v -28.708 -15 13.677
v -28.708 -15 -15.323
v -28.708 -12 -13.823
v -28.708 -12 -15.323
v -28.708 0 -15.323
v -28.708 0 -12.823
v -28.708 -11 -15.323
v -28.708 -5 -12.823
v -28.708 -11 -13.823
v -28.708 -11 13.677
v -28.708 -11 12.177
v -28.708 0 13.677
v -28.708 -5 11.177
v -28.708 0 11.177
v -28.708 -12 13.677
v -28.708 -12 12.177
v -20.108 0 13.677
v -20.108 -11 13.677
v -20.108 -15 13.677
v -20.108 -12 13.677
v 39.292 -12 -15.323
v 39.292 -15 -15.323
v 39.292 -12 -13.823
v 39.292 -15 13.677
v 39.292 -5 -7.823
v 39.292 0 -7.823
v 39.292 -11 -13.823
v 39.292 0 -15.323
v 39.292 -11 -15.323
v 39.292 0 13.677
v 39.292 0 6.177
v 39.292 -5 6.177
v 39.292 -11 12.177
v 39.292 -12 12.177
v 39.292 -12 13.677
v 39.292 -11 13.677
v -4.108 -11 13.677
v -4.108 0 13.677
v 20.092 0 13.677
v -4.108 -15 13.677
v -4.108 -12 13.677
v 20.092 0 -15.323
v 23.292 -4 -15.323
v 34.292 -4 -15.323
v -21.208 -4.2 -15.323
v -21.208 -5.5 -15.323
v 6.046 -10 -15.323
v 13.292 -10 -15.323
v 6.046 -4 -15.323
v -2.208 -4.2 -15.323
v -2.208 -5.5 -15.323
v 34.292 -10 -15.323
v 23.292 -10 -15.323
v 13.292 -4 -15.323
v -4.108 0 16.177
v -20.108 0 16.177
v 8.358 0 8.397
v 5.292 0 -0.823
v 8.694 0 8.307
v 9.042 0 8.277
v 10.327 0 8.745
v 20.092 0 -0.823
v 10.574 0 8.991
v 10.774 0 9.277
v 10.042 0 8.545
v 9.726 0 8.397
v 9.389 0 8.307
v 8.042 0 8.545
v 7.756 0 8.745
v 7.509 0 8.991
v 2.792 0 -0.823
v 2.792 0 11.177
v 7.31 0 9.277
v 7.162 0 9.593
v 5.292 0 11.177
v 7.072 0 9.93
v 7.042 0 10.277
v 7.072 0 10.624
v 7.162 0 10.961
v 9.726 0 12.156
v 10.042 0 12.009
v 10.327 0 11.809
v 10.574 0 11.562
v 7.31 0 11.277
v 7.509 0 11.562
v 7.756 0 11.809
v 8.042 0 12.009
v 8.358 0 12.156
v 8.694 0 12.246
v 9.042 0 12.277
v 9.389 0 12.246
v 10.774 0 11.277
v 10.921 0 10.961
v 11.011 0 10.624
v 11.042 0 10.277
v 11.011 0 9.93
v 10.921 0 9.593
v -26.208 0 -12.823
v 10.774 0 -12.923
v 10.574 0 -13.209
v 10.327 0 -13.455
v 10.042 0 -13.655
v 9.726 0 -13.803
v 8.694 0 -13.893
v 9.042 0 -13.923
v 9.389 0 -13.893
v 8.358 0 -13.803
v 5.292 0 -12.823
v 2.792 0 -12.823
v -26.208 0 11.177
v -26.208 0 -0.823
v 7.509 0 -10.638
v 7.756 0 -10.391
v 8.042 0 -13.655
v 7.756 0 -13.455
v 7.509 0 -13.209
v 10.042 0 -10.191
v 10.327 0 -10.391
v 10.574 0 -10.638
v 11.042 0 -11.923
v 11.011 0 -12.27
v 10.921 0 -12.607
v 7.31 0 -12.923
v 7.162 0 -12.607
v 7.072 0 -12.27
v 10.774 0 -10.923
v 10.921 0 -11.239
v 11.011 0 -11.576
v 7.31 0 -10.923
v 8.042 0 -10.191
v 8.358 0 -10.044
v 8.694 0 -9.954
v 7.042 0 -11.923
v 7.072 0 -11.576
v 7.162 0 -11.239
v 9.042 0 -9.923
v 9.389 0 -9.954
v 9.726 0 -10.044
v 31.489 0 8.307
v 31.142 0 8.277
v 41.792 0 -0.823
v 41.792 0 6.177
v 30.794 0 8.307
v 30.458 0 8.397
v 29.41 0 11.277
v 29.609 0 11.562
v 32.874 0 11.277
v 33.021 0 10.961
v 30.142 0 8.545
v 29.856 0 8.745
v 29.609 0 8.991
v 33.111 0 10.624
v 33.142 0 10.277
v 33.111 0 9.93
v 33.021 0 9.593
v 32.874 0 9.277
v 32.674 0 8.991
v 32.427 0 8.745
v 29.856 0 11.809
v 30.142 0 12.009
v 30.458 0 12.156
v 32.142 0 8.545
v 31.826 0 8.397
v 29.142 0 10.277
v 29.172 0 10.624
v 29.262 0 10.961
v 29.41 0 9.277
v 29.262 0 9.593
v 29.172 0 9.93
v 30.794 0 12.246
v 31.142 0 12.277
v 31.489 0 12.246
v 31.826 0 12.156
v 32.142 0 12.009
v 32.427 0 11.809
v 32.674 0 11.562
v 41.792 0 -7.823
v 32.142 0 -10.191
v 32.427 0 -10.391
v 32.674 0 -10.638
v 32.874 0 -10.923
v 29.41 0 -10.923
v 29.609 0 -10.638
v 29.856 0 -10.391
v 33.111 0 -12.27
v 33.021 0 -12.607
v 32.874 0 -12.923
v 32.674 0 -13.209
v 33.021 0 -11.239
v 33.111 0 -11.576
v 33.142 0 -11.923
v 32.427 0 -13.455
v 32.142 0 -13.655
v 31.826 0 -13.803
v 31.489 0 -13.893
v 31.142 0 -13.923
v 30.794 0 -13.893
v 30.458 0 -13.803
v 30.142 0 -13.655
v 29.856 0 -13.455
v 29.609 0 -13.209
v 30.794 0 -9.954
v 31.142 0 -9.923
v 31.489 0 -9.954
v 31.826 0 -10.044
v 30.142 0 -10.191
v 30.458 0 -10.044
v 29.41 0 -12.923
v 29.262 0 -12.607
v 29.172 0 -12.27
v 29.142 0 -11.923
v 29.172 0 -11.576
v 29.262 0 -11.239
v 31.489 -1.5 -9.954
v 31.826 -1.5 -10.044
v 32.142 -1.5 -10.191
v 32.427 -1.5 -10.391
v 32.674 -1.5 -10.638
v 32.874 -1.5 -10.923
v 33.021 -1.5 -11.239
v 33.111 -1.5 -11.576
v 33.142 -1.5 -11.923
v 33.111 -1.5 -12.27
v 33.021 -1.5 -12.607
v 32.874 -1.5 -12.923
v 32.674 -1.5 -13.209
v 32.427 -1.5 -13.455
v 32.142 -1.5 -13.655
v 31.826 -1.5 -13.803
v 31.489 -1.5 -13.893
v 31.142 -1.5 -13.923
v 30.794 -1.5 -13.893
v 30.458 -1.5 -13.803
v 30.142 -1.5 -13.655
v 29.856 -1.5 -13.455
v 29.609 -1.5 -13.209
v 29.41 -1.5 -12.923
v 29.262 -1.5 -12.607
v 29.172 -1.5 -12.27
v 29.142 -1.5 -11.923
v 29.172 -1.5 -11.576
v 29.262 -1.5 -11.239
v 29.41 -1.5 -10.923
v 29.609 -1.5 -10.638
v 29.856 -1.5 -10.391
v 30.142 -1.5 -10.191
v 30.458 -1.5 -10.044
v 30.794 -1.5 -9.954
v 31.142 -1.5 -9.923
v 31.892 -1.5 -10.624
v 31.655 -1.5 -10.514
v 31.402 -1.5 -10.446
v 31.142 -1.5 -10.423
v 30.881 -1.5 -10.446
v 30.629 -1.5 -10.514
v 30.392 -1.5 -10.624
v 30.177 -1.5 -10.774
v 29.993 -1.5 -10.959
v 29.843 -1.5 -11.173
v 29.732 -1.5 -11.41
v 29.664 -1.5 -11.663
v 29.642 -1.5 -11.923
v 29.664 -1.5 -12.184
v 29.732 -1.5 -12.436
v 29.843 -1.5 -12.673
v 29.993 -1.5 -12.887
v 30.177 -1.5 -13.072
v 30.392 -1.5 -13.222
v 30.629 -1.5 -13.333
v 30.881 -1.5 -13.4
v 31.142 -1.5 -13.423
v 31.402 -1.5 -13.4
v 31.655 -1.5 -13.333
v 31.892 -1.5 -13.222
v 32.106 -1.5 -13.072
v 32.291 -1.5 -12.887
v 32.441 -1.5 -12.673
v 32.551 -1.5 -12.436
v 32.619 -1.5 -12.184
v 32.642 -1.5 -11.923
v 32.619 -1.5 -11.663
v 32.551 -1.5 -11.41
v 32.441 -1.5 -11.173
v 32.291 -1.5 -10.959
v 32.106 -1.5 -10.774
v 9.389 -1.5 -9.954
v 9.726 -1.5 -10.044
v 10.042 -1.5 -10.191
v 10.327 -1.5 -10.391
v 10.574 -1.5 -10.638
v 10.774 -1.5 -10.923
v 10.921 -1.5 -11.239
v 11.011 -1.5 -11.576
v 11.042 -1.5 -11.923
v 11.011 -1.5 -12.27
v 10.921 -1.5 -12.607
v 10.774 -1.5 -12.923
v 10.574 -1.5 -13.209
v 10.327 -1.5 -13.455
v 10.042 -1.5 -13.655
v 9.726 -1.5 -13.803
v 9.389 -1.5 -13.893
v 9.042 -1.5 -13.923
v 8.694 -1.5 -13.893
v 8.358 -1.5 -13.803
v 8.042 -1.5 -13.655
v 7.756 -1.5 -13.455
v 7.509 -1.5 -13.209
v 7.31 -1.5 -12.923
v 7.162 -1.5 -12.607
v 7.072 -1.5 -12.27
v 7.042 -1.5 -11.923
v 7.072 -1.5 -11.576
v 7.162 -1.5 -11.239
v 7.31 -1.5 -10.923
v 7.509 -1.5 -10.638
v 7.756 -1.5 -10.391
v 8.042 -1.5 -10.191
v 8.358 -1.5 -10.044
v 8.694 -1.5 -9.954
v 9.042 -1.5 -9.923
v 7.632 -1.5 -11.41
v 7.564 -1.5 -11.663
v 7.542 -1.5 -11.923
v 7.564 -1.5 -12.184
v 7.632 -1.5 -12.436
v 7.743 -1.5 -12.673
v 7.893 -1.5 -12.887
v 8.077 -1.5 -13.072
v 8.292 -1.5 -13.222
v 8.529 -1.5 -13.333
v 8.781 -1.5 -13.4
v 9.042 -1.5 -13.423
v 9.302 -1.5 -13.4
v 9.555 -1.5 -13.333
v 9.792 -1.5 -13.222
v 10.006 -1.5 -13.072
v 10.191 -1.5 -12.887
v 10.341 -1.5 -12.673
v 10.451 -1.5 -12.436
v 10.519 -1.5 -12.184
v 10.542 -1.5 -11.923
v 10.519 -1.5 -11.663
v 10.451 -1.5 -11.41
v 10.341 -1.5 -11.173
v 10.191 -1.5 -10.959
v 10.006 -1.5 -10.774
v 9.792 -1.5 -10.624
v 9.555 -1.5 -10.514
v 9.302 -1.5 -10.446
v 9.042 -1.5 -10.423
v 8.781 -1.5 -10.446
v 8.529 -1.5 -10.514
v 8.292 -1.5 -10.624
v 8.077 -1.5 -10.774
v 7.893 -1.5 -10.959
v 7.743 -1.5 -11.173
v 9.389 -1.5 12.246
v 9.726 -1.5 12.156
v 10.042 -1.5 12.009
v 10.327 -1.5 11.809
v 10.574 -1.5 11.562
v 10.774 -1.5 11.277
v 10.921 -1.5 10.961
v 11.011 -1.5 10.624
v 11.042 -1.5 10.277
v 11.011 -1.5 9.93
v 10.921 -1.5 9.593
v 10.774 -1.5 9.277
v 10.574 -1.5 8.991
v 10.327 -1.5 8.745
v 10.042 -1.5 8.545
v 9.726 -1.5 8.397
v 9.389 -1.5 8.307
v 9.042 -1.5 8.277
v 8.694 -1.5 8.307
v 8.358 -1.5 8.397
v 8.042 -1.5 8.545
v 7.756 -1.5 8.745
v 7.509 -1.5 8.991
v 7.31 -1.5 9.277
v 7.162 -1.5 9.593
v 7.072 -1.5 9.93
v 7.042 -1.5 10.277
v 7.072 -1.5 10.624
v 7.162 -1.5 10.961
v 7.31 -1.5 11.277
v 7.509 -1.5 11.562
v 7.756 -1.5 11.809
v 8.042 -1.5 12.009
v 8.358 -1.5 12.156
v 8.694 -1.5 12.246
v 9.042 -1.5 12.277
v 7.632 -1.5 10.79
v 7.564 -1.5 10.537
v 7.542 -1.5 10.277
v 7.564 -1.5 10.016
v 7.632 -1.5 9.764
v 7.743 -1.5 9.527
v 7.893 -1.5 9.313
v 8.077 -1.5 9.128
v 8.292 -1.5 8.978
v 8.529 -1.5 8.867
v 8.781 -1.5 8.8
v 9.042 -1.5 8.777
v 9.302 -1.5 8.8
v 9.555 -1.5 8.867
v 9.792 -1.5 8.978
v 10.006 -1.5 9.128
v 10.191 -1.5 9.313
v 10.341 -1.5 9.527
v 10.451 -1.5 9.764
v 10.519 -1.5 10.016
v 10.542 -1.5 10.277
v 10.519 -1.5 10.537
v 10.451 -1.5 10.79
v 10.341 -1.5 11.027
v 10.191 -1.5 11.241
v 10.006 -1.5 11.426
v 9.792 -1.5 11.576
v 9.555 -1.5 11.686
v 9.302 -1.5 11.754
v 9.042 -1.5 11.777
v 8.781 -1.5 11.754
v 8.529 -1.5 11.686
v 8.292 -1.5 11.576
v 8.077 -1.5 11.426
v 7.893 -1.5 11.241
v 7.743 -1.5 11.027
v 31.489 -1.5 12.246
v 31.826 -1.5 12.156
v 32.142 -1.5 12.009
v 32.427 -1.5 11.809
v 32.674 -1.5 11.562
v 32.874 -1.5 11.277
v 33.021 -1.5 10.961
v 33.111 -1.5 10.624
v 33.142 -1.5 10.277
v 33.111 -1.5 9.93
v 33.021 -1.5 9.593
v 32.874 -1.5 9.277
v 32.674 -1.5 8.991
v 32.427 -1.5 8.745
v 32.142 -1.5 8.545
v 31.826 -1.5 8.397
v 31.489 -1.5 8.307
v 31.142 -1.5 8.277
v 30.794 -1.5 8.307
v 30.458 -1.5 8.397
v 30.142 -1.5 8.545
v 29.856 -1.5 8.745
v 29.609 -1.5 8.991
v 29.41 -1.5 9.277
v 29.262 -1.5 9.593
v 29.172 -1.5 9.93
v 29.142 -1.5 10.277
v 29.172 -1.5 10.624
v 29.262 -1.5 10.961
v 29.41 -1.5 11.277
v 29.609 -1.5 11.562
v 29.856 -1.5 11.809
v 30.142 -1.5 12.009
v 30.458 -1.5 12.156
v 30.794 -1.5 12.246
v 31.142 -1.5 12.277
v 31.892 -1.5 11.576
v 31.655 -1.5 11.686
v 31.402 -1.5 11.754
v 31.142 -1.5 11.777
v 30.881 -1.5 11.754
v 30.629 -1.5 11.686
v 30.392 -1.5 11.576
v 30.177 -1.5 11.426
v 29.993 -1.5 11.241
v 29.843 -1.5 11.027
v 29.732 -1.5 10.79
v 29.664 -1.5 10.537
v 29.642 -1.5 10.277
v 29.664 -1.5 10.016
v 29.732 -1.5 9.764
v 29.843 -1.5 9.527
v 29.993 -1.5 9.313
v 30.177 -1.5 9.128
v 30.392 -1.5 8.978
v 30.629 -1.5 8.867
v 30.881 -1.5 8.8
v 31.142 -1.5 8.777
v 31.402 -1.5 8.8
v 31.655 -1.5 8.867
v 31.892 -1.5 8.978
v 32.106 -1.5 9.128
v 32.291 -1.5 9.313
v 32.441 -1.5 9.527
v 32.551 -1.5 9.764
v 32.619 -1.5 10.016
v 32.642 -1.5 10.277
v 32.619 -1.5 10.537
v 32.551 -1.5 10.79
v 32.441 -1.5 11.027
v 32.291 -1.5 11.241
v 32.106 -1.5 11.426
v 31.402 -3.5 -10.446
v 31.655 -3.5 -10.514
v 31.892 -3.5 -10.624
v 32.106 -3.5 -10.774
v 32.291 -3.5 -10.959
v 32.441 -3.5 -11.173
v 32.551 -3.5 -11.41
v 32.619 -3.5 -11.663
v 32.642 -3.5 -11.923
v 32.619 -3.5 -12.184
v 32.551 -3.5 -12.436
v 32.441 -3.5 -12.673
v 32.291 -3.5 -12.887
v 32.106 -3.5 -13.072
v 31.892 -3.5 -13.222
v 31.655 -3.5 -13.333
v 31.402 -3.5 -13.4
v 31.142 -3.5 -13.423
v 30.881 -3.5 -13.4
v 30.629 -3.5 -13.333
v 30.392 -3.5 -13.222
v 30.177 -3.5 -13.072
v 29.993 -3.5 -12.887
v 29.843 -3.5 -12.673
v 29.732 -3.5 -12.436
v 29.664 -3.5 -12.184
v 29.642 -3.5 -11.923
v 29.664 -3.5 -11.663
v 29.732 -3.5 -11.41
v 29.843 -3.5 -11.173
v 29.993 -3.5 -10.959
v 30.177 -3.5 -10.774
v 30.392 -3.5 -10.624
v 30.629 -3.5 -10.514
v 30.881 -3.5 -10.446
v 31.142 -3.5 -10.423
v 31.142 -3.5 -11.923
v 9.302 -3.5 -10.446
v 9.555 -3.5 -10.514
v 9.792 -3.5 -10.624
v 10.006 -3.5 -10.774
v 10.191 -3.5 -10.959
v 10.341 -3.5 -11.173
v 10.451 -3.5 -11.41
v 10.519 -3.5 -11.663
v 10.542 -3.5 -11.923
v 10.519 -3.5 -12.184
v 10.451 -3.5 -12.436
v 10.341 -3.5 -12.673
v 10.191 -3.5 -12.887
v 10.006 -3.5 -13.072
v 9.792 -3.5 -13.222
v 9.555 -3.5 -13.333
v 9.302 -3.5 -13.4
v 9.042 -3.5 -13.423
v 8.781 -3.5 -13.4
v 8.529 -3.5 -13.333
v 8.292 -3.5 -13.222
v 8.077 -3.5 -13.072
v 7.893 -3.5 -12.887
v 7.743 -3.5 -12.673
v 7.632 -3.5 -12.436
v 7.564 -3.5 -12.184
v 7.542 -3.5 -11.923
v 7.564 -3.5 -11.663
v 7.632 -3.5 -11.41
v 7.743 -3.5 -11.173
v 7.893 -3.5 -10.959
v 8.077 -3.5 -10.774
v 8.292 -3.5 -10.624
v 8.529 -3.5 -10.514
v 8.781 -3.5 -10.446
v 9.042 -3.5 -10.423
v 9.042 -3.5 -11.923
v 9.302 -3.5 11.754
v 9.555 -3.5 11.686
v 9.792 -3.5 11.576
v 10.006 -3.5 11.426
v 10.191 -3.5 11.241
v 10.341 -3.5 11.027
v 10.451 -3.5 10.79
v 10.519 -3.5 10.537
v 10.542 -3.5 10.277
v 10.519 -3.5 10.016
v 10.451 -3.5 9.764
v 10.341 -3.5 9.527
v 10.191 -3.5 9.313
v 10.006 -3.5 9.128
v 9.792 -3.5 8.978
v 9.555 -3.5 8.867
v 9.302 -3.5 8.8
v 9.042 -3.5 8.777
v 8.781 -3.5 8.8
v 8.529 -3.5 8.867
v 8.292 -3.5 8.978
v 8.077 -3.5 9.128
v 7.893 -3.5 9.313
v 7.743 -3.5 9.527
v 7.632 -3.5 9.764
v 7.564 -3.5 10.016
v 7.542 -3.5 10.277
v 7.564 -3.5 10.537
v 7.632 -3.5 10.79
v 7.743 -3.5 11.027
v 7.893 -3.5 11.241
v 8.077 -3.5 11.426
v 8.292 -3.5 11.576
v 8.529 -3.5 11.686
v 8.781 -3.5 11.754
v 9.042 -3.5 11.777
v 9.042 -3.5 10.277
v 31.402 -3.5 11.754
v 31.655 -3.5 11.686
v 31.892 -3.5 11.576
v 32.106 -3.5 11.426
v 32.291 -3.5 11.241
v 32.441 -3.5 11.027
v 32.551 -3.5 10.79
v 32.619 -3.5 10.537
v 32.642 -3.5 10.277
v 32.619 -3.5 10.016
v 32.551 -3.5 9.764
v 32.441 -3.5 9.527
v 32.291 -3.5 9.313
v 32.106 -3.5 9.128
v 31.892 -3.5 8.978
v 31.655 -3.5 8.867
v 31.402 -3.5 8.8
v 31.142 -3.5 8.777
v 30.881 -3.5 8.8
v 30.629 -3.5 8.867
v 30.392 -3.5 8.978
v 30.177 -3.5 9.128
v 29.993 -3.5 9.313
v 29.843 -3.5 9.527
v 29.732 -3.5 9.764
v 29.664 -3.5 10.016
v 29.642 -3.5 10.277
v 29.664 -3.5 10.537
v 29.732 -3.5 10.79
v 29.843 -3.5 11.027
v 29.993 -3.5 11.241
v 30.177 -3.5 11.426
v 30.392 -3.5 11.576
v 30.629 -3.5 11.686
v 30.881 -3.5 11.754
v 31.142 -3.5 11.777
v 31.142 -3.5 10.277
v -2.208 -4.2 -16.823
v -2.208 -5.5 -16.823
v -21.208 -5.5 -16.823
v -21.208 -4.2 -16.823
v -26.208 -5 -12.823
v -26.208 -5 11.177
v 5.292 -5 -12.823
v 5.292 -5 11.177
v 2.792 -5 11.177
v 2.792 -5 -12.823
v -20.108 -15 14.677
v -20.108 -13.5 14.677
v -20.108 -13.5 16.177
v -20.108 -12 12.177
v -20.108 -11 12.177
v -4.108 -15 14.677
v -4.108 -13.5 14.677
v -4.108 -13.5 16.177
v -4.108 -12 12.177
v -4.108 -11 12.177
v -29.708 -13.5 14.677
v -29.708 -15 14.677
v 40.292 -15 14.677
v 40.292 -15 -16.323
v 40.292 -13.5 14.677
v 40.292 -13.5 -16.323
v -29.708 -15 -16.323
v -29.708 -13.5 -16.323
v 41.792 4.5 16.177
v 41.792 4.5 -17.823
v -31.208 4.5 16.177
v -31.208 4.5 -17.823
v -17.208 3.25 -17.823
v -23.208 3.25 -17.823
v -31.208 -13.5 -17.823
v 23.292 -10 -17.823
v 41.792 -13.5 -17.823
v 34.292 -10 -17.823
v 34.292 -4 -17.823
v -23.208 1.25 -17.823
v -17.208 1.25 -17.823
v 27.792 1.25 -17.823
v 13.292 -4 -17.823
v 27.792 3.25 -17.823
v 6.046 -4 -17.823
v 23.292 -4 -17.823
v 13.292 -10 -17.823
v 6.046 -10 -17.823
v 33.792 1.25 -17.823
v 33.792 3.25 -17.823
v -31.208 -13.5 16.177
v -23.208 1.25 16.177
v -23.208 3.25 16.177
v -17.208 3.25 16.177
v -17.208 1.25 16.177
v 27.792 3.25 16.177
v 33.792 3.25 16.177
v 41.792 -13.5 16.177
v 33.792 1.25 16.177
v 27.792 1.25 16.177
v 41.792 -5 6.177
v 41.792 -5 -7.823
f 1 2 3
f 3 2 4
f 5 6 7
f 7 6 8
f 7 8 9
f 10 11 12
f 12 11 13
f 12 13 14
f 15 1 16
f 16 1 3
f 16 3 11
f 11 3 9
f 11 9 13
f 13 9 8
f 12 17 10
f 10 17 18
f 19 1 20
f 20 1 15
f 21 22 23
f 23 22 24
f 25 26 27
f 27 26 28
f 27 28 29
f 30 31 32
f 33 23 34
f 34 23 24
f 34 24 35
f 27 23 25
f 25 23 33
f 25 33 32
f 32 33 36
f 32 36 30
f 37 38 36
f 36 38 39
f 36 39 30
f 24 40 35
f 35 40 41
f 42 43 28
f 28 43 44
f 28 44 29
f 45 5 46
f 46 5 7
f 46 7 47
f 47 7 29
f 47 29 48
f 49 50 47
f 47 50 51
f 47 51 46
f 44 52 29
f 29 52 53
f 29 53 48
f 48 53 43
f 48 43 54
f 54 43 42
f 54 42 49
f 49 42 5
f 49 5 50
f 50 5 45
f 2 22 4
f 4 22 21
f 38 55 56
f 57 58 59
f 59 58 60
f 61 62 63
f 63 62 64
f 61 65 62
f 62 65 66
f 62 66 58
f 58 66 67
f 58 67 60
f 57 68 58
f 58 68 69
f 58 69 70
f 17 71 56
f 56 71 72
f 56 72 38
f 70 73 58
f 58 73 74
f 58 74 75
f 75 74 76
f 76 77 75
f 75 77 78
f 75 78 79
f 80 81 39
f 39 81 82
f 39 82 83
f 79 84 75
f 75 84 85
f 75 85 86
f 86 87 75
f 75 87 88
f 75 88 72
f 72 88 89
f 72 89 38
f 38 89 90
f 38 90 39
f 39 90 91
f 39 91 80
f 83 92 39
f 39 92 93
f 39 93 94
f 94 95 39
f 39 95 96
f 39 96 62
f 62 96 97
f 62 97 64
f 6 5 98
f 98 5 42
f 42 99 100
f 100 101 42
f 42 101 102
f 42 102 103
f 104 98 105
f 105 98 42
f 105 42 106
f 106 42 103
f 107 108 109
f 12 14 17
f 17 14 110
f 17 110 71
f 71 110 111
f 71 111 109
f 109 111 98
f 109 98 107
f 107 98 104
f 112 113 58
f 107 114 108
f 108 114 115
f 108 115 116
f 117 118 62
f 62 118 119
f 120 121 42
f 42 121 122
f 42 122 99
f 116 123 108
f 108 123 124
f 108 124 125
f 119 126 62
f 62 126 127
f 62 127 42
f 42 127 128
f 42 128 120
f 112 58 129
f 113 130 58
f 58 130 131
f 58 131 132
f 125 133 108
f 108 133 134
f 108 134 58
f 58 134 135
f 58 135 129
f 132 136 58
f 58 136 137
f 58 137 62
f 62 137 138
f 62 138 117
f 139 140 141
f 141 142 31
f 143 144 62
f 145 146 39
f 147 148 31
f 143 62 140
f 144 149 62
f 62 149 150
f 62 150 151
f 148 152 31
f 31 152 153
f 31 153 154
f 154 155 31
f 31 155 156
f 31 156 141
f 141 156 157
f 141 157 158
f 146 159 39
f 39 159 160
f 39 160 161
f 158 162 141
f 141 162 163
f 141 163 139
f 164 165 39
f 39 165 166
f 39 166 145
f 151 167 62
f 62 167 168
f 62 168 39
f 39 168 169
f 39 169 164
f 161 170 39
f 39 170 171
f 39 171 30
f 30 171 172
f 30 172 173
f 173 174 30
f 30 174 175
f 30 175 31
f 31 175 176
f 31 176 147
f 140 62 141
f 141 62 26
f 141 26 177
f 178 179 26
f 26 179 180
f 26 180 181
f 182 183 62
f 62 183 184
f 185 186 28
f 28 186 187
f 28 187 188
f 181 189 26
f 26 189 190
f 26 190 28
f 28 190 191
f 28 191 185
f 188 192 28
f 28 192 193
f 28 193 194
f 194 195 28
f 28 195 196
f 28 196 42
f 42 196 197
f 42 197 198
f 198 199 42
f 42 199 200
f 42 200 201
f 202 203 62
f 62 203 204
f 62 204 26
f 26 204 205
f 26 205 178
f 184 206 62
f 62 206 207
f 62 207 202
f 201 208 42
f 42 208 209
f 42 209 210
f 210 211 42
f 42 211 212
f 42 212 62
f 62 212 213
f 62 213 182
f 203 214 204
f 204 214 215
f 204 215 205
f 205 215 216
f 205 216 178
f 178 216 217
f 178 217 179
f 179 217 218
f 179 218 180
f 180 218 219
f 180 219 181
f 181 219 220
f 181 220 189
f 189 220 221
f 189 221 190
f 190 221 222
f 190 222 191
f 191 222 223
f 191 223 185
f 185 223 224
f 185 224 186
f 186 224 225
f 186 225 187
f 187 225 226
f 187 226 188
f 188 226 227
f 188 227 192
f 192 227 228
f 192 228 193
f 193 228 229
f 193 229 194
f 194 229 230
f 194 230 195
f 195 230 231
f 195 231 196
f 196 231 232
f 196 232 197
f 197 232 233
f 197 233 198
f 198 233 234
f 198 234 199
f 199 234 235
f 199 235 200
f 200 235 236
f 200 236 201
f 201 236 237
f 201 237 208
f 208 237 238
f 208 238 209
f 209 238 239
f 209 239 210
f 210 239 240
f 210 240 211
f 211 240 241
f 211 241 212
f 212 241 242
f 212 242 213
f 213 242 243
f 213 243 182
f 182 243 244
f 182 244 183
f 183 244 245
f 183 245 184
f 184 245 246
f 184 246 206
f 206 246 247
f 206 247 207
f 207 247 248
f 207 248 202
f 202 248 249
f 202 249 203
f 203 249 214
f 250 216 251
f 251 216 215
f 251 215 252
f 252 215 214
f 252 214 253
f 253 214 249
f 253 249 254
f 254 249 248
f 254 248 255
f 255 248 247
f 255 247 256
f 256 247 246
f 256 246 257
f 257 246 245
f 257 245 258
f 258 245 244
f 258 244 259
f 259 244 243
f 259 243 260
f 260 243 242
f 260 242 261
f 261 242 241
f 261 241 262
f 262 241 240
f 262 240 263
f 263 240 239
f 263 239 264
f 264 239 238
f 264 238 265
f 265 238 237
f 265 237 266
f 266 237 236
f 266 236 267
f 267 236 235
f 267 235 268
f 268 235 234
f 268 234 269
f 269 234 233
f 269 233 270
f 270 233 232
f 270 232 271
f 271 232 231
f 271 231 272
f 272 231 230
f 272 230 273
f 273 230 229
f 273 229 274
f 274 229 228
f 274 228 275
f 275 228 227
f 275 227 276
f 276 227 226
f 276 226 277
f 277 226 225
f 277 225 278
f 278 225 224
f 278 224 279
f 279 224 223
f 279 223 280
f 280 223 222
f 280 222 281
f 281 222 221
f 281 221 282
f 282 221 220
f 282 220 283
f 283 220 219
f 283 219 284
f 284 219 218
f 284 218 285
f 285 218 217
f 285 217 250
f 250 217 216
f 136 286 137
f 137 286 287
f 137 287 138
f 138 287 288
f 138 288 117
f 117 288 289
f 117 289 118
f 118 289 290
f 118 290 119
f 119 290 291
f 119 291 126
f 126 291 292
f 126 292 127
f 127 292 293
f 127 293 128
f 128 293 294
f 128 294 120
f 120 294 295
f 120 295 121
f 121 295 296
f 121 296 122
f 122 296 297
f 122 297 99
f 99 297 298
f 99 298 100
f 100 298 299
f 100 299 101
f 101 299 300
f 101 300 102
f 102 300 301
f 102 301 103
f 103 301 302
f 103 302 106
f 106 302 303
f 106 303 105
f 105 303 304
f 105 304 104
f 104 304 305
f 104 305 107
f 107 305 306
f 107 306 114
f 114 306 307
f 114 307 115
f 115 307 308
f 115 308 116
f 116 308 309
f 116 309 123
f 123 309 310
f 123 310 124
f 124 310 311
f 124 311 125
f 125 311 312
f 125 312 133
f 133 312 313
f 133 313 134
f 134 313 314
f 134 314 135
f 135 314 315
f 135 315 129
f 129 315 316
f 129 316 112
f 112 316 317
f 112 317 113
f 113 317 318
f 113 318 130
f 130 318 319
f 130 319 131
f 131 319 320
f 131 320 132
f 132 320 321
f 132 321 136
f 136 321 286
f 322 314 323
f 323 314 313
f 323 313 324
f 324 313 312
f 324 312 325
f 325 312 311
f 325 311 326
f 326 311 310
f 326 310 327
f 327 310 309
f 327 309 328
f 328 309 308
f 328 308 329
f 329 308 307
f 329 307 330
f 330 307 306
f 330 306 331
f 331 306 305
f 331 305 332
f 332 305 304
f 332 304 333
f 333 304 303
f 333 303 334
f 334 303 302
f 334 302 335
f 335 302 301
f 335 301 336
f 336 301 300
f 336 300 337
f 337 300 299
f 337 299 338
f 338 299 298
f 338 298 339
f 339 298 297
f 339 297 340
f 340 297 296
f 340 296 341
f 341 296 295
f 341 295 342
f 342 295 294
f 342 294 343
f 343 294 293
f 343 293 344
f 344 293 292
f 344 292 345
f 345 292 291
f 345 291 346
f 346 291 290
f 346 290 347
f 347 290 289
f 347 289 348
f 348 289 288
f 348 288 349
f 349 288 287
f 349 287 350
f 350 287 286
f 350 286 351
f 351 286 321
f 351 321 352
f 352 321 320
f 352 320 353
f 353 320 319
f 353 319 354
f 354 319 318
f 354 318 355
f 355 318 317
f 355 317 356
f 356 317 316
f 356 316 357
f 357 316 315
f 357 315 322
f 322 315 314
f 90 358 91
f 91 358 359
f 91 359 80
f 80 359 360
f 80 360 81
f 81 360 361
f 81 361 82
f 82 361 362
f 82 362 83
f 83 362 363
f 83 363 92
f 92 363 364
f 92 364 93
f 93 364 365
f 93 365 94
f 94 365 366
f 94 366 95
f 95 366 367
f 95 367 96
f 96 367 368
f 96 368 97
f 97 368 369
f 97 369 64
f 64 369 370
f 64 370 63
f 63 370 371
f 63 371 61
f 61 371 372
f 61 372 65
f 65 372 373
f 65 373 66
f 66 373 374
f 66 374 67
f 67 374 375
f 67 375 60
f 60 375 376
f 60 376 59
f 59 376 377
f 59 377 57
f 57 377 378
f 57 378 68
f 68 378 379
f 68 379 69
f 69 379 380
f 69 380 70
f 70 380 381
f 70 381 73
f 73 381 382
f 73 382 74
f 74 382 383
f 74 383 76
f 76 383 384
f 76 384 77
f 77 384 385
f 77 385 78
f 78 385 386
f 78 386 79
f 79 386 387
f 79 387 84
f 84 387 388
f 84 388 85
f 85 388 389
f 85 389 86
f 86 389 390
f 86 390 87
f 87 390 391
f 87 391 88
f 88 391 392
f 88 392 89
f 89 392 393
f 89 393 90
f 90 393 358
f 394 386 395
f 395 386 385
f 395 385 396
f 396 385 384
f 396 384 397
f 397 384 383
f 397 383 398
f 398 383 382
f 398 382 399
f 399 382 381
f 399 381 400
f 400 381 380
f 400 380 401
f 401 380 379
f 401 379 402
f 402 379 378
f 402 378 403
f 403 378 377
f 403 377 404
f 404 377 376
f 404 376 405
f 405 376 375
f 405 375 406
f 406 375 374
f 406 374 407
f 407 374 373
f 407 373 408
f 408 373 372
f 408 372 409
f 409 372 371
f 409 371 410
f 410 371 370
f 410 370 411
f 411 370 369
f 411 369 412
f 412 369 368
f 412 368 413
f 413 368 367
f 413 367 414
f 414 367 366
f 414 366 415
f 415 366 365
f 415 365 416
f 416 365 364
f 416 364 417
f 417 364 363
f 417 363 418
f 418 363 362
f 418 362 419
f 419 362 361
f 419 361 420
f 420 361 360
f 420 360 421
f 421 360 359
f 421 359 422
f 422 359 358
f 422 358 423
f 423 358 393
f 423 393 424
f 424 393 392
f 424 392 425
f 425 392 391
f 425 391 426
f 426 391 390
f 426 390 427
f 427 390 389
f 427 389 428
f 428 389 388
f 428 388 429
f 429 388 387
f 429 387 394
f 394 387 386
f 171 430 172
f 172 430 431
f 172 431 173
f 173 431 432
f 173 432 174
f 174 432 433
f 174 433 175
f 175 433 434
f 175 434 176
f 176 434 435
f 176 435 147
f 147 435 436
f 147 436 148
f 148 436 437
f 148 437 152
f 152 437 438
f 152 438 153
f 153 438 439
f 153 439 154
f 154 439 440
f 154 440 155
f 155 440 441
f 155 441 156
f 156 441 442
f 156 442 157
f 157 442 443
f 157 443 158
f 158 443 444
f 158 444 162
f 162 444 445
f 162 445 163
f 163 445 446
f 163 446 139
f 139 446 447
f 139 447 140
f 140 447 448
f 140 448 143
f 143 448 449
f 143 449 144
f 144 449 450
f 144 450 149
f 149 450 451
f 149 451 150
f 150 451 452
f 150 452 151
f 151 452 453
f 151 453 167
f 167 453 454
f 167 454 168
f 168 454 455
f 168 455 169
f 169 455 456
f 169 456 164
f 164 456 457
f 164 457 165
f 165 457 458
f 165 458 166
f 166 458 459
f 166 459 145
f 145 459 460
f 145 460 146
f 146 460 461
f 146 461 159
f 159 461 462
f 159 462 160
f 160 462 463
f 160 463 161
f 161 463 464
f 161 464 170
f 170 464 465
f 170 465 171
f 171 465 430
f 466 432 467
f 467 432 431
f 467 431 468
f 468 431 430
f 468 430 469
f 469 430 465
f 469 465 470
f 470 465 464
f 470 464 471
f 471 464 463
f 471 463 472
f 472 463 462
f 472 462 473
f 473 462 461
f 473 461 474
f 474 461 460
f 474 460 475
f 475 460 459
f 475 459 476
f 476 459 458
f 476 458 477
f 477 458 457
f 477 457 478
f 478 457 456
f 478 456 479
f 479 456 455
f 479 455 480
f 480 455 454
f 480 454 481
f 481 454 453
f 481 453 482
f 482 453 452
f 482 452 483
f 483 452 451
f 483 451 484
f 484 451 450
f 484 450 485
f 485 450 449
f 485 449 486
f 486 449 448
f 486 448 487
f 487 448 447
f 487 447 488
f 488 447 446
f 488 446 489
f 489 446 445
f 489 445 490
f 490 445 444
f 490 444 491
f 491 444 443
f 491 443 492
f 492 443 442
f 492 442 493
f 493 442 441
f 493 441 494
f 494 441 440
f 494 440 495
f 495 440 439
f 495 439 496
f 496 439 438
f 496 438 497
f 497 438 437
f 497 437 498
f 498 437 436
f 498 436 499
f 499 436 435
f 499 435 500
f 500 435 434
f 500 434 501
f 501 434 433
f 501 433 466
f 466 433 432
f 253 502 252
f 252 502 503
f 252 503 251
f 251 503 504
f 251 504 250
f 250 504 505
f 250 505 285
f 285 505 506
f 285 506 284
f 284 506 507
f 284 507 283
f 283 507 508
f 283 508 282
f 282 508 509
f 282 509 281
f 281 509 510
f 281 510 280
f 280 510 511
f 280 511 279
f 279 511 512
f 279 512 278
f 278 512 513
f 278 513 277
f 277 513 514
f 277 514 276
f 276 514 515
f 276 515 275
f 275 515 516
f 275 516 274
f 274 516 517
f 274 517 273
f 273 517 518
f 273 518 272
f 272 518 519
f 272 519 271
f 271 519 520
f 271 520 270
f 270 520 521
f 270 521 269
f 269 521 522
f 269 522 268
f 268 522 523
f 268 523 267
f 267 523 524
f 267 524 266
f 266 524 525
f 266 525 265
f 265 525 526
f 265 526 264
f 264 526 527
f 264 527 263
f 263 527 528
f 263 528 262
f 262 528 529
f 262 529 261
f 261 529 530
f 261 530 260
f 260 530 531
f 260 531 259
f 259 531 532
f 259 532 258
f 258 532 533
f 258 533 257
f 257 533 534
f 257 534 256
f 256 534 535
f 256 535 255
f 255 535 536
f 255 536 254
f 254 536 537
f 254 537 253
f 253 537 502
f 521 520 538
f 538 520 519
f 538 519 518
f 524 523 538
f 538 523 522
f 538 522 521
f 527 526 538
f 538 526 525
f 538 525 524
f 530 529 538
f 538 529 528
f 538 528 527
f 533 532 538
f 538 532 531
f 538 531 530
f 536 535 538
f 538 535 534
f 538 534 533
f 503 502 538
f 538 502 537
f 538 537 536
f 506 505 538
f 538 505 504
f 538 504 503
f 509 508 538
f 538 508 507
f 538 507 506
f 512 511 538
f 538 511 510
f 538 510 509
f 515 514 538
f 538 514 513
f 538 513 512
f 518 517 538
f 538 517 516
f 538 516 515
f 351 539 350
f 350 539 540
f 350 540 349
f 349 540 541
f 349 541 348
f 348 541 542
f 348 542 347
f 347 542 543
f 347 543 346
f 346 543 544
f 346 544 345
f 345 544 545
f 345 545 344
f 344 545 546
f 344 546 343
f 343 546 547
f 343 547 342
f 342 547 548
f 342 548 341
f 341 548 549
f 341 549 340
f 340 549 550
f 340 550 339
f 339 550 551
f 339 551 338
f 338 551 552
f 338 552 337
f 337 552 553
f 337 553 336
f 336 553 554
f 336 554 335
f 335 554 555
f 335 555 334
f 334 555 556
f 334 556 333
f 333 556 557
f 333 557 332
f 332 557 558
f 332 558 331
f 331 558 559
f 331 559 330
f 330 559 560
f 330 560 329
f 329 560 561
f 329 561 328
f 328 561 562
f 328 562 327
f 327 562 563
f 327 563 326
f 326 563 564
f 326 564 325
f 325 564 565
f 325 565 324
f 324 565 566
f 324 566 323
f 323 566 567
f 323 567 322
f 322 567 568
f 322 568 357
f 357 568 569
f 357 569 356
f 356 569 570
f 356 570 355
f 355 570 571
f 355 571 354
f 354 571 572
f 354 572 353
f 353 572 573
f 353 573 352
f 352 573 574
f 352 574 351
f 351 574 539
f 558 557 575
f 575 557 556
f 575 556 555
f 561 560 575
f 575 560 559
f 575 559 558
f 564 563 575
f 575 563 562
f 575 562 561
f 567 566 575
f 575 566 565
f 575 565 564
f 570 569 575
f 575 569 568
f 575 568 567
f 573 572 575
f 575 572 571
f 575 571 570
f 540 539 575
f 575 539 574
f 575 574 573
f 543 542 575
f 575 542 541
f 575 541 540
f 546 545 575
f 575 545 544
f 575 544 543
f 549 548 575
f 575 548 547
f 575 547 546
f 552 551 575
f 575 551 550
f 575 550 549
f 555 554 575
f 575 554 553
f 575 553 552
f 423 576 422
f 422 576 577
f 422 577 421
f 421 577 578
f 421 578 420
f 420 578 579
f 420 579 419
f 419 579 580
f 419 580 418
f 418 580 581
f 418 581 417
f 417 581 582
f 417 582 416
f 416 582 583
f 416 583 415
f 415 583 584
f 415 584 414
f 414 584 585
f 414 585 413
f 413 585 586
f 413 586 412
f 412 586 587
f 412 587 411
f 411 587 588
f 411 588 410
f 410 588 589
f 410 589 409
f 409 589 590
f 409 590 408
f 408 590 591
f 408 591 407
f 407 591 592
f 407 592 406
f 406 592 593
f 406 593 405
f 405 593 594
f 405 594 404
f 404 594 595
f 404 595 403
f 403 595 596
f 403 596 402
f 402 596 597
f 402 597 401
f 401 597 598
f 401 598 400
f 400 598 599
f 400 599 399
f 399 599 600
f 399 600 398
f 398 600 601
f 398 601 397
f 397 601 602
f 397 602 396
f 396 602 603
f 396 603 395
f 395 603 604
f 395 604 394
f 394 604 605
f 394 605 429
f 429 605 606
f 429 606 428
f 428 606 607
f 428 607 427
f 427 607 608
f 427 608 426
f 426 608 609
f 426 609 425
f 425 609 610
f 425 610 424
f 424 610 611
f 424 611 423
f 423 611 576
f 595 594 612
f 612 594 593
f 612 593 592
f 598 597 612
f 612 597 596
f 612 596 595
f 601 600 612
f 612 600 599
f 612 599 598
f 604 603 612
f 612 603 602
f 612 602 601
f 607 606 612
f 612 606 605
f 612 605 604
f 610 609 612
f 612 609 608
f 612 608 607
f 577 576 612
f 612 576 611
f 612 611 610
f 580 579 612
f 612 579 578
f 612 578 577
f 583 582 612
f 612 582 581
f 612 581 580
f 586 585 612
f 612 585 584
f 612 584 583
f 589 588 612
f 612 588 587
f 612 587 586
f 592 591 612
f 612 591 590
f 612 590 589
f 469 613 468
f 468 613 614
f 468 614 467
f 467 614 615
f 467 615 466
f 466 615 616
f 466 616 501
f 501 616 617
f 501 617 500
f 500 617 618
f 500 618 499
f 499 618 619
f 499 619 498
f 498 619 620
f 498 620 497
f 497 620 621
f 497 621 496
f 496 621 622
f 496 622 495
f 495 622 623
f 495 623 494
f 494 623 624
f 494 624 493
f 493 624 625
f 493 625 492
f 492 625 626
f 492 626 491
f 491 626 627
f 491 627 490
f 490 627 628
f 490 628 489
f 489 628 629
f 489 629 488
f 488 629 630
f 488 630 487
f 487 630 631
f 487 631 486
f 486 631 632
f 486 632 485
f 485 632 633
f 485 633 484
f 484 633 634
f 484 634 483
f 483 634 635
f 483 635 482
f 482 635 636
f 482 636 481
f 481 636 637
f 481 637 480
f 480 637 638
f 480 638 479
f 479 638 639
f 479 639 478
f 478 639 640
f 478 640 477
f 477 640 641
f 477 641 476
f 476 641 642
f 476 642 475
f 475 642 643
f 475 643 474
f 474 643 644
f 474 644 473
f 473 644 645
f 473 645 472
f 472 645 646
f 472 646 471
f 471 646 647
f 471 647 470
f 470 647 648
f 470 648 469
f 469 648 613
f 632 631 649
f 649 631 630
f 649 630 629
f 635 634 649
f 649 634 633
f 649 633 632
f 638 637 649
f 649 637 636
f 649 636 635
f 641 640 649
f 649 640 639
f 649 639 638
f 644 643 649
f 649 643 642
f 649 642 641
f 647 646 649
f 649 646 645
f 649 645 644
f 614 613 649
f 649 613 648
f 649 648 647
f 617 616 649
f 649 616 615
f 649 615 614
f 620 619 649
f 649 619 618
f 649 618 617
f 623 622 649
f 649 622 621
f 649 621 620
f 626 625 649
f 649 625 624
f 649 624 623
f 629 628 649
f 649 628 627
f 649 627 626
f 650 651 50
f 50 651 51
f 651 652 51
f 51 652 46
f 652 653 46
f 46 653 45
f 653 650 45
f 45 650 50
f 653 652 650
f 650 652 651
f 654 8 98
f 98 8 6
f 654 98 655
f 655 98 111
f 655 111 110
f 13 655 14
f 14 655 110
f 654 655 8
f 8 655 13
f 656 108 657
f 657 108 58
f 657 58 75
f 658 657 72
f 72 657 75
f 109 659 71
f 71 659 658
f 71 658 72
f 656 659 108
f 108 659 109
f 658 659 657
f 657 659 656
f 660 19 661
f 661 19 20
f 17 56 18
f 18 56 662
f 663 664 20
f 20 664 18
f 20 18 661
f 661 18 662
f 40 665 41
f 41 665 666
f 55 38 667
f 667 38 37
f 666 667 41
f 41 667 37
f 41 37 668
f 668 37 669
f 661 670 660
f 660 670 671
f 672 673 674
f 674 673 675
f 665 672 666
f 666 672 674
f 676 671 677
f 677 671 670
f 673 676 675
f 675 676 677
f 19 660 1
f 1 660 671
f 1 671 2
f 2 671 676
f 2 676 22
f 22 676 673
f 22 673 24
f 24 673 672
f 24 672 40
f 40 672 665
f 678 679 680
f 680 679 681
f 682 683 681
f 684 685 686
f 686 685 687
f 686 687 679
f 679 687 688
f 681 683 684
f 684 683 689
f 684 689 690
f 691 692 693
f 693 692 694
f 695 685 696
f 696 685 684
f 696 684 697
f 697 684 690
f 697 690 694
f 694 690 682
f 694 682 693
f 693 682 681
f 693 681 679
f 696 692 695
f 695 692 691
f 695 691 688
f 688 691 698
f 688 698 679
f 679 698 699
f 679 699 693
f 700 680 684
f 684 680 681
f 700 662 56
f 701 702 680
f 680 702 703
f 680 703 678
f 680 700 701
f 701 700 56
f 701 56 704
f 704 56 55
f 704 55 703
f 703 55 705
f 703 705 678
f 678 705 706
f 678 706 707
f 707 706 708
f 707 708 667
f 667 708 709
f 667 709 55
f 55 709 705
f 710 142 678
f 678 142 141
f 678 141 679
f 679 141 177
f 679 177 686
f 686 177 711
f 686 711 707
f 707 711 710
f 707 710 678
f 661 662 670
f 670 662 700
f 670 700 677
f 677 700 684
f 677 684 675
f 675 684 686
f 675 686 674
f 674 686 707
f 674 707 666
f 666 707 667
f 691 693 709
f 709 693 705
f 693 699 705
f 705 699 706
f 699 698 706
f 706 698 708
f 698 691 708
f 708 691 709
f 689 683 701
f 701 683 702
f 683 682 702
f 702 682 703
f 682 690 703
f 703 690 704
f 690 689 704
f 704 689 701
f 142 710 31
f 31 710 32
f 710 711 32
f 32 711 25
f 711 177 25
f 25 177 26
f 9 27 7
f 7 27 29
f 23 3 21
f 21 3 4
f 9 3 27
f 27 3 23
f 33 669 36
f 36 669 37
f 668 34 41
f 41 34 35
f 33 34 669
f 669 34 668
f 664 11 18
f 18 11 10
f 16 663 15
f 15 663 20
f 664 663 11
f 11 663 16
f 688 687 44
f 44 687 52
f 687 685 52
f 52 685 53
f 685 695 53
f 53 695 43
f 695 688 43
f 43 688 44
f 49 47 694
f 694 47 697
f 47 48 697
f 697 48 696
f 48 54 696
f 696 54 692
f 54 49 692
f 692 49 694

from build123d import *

# Parameters (mm, degrees)
SKETCH1_W             = 73
SKETCH1_H             = 34
BASE_DEPTH            = 4.5
SKETCH21_W            = 73
SKETCH21_H            = 34
EXTRUDE_UP_DEPTH      = 13.5
SKETCH22_W            = 68
SKETCH22_H            = 29
CUT_DOWN_DEPTH        = 13.5
SKETCH27_R            = 2
BOSS_EXTRUDE15_DEPTH  = 1.5
SKETCH29_R            = 2
BOSS_EXTRUDE16_DEPTH  = 1.5
SKETCH30_R            = 2
BOSS_EXTRUDE17_DEPTH  = 1.5
SKETCH28_R            = 2
BOSS_EXTRUDE18_DEPTH  = 1.5
SKETCH31_R            = 1.5
BOSS_EXTRUDE19_DEPTH  = 2
SKETCH32_R            = 1.5
BOSS_EXTRUDE20_DEPTH  = 2
SKETCH33_R            = 1.5
BOSS_EXTRUDE21_DEPTH  = 2
SKETCH34_R            = 1.5
BOSS_EXTRUDE22_DEPTH  = 2
SKETCH39_W            = 19
SKETCH39_H            = 1.3
WALL_SLIT_DEPTH       = 1.5
SKETCH41_W            = 2.5
SKETCH41_H            = 24
OUTSIDE_BLOCK_DEPTH   = 5
SKETCH44_W            = 2.5
SKETCH44_H            = 24
INSIDE_BLOCK_DEPTH    = 5
SKETCH62_W            = 70
SKETCH62_H            = 31
RAISE_LIP_DEPTH       = 1.5
SKETCH74_W            = 16
SKETCH74_H            = 15
USB_HOLE_DEPTH        = 2.5
SKETCH63_W            = 68
SKETCH63_H            = 29
CUT_LIP_DEPTH         = 1.5
SKETCH47_W            = 6
SKETCH47_H            = 2
TOP_TIE_HOLE_DEPTH    = 34
SKETCH48_W            = 6
SKETCH48_H            = 2
BOTTOM_TIE_HOLE_DEPTH = 34
SKETCH56_W            = 14
SKETCH56_H            = 5
WIRE_HOLE_DEPTH       = 2.5
SKETCH68_W            = 68
SKETCH68_H            = 1
RIGHT_LEDGE_DEPTH     = 1.5
SKETCH67_W            = 43.4
SKETCH67_H            = 1
SKETCH67_W_2          = 8.6
LEFT_LEDGE_DEPTH      = 1.5
SKETCH69_W            = 11
SKETCH69_H            = 6
SWITCH_HOLE_DEPTH     = 2.5
SKETCH70_W            = 7.245173121
SKETCH70_H            = 6
POWER_HOLE_DEPTH      = 2.5


with BuildPart() as part:
    # Sketch1 → base (new body)
    with BuildSketch(Plane(origin=(0, 0, 0), x_dir=(1, 0, 0), z_dir=(0, 1, 0))):
        with Locations((5.291578947, 0.823157895)):
            Rectangle(SKETCH1_W, SKETCH1_H)
    extrude(amount=BASE_DEPTH)

    # Sketch21 → extrude up (add)
    with BuildSketch(Plane(origin=(0, 0, 0), x_dir=(-1, 0, 0), z_dir=(0, -1, 0))):
        with Locations((-5.291578947, 0.823157895)):
            Rectangle(SKETCH21_W, SKETCH21_H)
    extrude(amount=EXTRUDE_UP_DEPTH)

    # Sketch22 → cut down (cut)
    with BuildSketch(Plane(origin=(0, -13.5, 0), x_dir=(-1, 0, 0), z_dir=(0, -1, 0))):
        with Locations((-5.291578947, 0.823157895)):
            Rectangle(SKETCH22_W, SKETCH22_H)
    extrude(amount=-CUT_DOWN_DEPTH, mode=Mode.SUBTRACT)

    # Sketch27 → Boss-Extrude15 (add)
    with BuildSketch(Plane.XZ):
        with Locations(Location((31.141578947, -11.923157895, 0), (0, 0, 270))):
            Circle(SKETCH27_R)
    extrude(amount=BOSS_EXTRUDE15_DEPTH)

    # Sketch29 → Boss-Extrude16 (add)
    with BuildSketch(Plane.XZ):
        with Locations(Location((9.041578947, -11.923157895, 0), (0, 0, 270))):
            Circle(SKETCH29_R)
    extrude(amount=BOSS_EXTRUDE16_DEPTH)

    # Sketch30 → Boss-Extrude17 (add)
    with BuildSketch(Plane.XZ):
        with Locations(Location((9.041578947, 10.276842105, 0), (0, 0, 270))):
            Circle(SKETCH30_R)
    extrude(amount=BOSS_EXTRUDE17_DEPTH)

    # Sketch28 → Boss-Extrude18 (add)
    with BuildSketch(Plane.XZ):
        with Locations(Location((31.141578947, 10.276842105, 0), (0, 0, 270))):
            Circle(SKETCH28_R)
    extrude(amount=BOSS_EXTRUDE18_DEPTH)

    # Sketch31 → Boss-Extrude19 (add)
    with BuildSketch(Plane.XZ.offset(1.5)):
        with Locations(Location((31.141578947, -11.923157895, 0), (0, 0, 270))):
            Circle(SKETCH31_R)
    extrude(amount=BOSS_EXTRUDE19_DEPTH)

    # Sketch32 → Boss-Extrude20 (add)
    with BuildSketch(Plane.XZ.offset(1.5)):
        with Locations(Location((9.041578947, -11.923157895, 0), (0, 0, 270))):
            Circle(SKETCH32_R)
    extrude(amount=BOSS_EXTRUDE20_DEPTH)

    # Sketch33 → Boss-Extrude21 (add)
    with BuildSketch(Plane.XZ.offset(1.5)):
        with Locations(Location((9.041578947, 10.276842105, 0), (0, 0, 270))):
            Circle(SKETCH33_R)
    extrude(amount=BOSS_EXTRUDE21_DEPTH)

    # Sketch34 → Boss-Extrude22 (add)
    with BuildSketch(Plane.XZ.offset(1.5)):
        with Locations(Location((31.141578947, 10.276842105, 0), (0, 0, 270))):
            Circle(SKETCH34_R)
    extrude(amount=BOSS_EXTRUDE22_DEPTH)

    # Sketch39 → wall slit (cut)
    with BuildSketch(Plane.XY.offset(-15.323157895)):
        with Locations((-11.708421053, -4.85)):
            Rectangle(SKETCH39_W, SKETCH39_H)
    extrude(amount=-WALL_SLIT_DEPTH, mode=Mode.SUBTRACT)

    # Sketch41 → outside block (add)
    with BuildSketch(Plane.XZ):
        with Locations((-27.458421053, -0.823157895)):
            Rectangle(SKETCH41_W, SKETCH41_H)
    extrude(amount=OUTSIDE_BLOCK_DEPTH)

    # Sketch44 → inside block (add)
    with BuildSketch(Plane.XZ):
        with Locations((4.041578947, -0.823157895)):
            Rectangle(SKETCH44_W, SKETCH44_H)
    extrude(amount=INSIDE_BLOCK_DEPTH)

    # Sketch62 → raise lip (add)
    with BuildSketch(Plane.XZ.offset(13.5)):
        with Locations((5.291578947, -0.823157895)):
            Rectangle(SKETCH62_W, SKETCH62_H)
    extrude(amount=RAISE_LIP_DEPTH)

    # Sketch74 → usb hole (cut)
    with BuildSketch(Plane(origin=(0, 0, 13.676842105), x_dir=(-1, 0, 0), z_dir=(0, 0, -1))):
        with Locations((12.108421053, -7.5)):
            Rectangle(SKETCH74_W, SKETCH74_H)
    extrude(amount=-USB_HOLE_DEPTH, mode=Mode.SUBTRACT)

    # Sketch63 → cut lip (cut)
    with BuildSketch(Plane.XZ.offset(15)):
        with Locations((5.291578947, -0.823157895)):
            Rectangle(SKETCH63_W, SKETCH63_H)
    extrude(amount=-CUT_LIP_DEPTH, mode=Mode.SUBTRACT)

    # Sketch47 → top tie hole (cut)
    with BuildSketch(Plane.XY.offset(16.176842105)):
        with Locations((30.791578947, 2.25)):
            Rectangle(SKETCH47_W, SKETCH47_H)
    extrude(amount=-TOP_TIE_HOLE_DEPTH, mode=Mode.SUBTRACT)

    # Sketch48 → bottom tie hole (cut)
    with BuildSketch(Plane.XY.offset(16.176842105)):
        with Locations((-20.208421053, 2.25)):
            Rectangle(SKETCH48_W, SKETCH48_H)
    extrude(amount=-BOTTOM_TIE_HOLE_DEPTH, mode=Mode.SUBTRACT)

    # Sketch56 → wire hole (cut)
    with BuildSketch(Plane.ZY.offset(-39.291578947)):
        with Locations((-0.823157895, -2.5)):
            Rectangle(SKETCH56_W, SKETCH56_H)
    extrude(amount=-WIRE_HOLE_DEPTH, mode=Mode.SUBTRACT)

    # Sketch68 → right ledge (add)
    with BuildSketch(Plane.XY.offset(-15.323157895)):
        with Locations((5.291578947, -11.5)):
            Rectangle(SKETCH68_W, SKETCH68_H)
    extrude(amount=RIGHT_LEDGE_DEPTH)

    # Sketch67 → left ledge (add)
    with BuildSketch(Plane(origin=(0, 0, 13.676842105), x_dir=(-1, 0, 0), z_dir=(0, 0, -1))):
        with Locations((-17.591578947, -11.5)):
            Rectangle(SKETCH67_W, SKETCH67_H)
        with Locations((24.408421053, -11.5)):
            Rectangle(SKETCH67_W_2, SKETCH67_H)
    extrude(amount=LEFT_LEDGE_DEPTH)

    # Sketch69 → switch hole (cut)
    with BuildSketch(Plane.XY.offset(-15.323157895)):
        with Locations((28.791578947, -7)):
            Rectangle(SKETCH69_W, SKETCH69_H)
    extrude(amount=-SWITCH_HOLE_DEPTH, mode=Mode.SUBTRACT)

    # Sketch70 → power hole (cut)
    with BuildSketch(Plane(origin=(0, 0, -17.823157895), x_dir=(-1, 0, 0), z_dir=(0, 0, -1))):
        with Locations((-9.668992387, -7)):
            Rectangle(SKETCH70_W, SKETCH70_H)
    extrude(amount=-POWER_HOLE_DEPTH, mode=Mode.SUBTRACT)


solid = part.part
